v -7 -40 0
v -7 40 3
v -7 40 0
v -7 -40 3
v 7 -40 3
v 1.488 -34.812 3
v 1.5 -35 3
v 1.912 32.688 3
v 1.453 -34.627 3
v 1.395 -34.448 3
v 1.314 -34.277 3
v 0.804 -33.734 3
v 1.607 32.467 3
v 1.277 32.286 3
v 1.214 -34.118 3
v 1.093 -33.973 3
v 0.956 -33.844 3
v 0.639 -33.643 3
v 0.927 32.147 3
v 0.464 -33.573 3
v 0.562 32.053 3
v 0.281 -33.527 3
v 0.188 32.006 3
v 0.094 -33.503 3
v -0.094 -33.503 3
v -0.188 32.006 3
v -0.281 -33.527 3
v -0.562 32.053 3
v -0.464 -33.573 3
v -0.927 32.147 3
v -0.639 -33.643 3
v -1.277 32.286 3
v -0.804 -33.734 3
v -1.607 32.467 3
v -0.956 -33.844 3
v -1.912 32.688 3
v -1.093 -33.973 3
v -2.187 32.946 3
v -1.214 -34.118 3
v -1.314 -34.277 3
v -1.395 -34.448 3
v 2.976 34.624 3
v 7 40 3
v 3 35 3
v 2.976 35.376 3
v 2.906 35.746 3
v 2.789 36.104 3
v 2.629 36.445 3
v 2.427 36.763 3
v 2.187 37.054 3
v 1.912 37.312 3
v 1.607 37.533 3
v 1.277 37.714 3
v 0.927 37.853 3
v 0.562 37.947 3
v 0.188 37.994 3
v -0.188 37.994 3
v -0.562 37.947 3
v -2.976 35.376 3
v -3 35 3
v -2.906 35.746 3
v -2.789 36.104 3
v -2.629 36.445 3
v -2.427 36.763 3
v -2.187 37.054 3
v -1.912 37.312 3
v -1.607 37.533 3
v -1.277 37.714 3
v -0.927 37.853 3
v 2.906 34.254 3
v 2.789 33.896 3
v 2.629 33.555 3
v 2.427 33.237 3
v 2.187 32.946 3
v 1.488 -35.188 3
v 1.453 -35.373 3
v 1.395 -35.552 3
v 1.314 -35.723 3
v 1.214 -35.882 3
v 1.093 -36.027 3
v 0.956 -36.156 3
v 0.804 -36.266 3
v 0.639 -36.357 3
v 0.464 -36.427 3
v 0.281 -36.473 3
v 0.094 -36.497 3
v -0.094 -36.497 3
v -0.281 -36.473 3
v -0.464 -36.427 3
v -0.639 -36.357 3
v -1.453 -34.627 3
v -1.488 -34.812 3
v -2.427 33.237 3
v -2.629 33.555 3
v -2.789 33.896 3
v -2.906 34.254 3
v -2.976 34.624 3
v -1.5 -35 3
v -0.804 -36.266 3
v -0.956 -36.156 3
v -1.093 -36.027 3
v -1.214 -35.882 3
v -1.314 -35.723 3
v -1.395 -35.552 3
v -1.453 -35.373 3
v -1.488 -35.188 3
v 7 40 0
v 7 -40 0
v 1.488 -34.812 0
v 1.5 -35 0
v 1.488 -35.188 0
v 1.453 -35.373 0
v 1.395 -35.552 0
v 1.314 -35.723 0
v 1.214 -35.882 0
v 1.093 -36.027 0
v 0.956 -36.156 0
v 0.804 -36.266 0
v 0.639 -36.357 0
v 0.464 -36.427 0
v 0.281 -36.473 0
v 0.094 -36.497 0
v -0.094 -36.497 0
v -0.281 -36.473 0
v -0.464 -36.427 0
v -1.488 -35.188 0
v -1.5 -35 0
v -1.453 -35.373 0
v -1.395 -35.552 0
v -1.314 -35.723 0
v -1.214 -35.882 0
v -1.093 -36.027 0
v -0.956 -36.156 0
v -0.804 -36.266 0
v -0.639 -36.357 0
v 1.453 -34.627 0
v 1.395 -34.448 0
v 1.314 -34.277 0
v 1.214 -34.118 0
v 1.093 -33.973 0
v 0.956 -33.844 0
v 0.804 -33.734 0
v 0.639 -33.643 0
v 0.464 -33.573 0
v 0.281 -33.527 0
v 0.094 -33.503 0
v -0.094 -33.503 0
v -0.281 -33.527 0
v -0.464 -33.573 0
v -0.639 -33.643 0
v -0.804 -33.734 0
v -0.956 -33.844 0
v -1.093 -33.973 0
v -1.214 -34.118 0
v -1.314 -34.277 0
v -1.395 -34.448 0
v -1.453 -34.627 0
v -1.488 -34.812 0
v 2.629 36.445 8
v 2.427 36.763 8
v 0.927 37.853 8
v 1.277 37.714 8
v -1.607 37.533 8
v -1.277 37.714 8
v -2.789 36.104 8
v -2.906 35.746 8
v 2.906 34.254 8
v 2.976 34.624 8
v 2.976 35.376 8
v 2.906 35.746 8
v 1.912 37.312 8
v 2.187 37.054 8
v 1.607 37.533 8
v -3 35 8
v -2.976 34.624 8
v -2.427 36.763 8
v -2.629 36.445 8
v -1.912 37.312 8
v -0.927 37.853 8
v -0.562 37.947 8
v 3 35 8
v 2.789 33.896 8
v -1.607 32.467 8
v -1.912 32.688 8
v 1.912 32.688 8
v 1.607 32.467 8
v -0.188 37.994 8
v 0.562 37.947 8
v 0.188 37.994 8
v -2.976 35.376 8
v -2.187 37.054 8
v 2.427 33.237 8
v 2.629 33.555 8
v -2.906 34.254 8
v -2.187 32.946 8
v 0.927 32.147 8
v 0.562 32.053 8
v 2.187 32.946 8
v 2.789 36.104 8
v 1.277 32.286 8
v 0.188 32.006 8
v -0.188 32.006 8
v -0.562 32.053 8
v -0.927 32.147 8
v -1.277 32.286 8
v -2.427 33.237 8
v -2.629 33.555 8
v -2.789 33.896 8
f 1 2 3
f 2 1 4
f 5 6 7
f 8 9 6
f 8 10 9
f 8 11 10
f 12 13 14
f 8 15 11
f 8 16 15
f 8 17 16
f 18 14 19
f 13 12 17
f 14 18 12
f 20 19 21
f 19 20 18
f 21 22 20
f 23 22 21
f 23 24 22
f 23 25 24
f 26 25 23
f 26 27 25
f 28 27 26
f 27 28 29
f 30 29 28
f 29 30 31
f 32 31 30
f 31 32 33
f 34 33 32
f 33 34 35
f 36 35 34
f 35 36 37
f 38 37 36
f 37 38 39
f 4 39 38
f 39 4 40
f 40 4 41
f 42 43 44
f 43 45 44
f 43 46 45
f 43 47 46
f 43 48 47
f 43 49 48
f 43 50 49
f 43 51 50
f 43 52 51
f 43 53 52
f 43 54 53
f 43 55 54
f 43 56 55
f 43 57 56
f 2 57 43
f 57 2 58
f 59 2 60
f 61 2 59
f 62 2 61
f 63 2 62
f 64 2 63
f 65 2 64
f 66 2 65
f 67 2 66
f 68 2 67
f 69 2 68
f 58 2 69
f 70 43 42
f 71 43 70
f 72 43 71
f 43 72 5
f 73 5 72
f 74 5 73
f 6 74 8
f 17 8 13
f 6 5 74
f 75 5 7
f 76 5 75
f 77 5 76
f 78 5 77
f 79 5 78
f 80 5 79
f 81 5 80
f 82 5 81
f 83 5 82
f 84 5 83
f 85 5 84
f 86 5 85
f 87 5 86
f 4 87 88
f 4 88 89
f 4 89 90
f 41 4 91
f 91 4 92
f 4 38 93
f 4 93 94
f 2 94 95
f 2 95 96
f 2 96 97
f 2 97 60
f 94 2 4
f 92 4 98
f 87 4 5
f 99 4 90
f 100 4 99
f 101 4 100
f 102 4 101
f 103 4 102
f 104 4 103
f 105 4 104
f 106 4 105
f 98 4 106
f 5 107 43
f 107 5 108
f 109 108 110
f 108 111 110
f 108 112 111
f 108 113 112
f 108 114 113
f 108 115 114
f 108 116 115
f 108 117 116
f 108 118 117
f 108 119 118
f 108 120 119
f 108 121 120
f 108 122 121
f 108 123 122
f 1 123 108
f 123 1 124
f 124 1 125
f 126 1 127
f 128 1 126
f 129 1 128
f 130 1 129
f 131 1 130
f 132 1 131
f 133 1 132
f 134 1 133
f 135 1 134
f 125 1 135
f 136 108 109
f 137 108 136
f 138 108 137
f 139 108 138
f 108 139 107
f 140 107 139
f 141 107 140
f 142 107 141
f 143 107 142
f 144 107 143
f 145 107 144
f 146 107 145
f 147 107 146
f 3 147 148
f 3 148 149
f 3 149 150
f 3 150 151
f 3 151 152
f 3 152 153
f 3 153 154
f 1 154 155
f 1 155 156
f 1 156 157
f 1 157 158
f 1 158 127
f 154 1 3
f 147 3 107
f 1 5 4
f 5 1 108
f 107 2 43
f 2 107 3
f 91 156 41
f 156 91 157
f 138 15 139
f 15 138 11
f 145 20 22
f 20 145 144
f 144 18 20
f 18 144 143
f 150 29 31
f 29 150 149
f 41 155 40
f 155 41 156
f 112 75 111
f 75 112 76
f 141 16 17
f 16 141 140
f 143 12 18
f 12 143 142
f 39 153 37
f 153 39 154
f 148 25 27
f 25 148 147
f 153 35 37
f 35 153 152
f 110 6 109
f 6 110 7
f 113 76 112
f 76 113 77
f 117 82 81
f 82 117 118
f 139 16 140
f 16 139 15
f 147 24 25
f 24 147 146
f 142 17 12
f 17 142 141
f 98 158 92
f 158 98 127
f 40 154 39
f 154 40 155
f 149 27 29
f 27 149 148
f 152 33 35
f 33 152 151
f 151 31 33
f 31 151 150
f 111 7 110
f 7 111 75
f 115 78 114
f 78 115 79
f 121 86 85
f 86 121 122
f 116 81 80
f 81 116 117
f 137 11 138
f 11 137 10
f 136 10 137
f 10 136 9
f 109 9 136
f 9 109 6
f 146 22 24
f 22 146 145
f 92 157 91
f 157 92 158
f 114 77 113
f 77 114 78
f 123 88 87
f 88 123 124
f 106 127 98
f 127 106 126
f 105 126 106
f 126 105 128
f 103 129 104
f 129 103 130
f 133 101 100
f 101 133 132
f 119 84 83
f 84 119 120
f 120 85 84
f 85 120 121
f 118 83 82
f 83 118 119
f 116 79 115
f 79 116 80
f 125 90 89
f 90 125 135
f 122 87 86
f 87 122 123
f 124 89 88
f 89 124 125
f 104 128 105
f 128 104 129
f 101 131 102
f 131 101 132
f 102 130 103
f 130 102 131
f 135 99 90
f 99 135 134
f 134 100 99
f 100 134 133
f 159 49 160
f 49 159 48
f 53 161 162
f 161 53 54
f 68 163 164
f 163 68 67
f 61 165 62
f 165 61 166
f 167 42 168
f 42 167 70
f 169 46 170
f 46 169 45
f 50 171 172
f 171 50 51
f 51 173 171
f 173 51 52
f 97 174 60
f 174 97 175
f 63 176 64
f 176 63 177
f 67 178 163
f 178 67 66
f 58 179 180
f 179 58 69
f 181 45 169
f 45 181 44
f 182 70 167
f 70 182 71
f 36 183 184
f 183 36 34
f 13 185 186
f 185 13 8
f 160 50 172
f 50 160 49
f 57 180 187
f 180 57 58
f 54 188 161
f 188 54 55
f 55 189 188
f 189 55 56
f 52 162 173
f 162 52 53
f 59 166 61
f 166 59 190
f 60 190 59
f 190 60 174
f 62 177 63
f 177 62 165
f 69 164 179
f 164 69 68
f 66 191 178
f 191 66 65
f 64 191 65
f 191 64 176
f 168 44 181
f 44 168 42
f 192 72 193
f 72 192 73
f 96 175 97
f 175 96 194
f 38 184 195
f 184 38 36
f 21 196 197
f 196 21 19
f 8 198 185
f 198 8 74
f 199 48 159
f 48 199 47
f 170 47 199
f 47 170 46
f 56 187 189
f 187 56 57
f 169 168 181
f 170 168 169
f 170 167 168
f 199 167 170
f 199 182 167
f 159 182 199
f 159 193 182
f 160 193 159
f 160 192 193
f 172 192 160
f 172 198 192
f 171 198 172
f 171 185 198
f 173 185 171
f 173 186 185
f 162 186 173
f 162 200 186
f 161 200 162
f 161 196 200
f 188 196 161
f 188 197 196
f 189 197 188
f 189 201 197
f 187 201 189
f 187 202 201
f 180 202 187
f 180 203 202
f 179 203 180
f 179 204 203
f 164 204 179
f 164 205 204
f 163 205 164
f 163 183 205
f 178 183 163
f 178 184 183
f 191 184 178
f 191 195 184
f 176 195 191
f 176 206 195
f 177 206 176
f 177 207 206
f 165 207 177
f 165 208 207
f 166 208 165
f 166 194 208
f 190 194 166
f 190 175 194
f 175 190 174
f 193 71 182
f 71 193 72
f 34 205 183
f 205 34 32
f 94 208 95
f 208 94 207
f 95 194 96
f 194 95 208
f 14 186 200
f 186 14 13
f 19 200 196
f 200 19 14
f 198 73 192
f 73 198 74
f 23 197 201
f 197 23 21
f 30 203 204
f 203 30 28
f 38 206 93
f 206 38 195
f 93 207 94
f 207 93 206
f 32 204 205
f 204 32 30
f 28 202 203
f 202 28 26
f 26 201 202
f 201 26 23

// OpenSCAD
module hole() {
    translate([0, -35, -2]) cylinder(7,1.5,1.5, [0,0], $fn = 50);
}

module sylinder(){
    translate([0, 35, 3]) cylinder(5,3,3, [0,0], $fn = 50);
}

module upperpart(){
    translate([-7, -40, 0]) cube([14,80,3], [0,0]);
}

difference(){
    upperpart();
    hole();
}


sylinder();
